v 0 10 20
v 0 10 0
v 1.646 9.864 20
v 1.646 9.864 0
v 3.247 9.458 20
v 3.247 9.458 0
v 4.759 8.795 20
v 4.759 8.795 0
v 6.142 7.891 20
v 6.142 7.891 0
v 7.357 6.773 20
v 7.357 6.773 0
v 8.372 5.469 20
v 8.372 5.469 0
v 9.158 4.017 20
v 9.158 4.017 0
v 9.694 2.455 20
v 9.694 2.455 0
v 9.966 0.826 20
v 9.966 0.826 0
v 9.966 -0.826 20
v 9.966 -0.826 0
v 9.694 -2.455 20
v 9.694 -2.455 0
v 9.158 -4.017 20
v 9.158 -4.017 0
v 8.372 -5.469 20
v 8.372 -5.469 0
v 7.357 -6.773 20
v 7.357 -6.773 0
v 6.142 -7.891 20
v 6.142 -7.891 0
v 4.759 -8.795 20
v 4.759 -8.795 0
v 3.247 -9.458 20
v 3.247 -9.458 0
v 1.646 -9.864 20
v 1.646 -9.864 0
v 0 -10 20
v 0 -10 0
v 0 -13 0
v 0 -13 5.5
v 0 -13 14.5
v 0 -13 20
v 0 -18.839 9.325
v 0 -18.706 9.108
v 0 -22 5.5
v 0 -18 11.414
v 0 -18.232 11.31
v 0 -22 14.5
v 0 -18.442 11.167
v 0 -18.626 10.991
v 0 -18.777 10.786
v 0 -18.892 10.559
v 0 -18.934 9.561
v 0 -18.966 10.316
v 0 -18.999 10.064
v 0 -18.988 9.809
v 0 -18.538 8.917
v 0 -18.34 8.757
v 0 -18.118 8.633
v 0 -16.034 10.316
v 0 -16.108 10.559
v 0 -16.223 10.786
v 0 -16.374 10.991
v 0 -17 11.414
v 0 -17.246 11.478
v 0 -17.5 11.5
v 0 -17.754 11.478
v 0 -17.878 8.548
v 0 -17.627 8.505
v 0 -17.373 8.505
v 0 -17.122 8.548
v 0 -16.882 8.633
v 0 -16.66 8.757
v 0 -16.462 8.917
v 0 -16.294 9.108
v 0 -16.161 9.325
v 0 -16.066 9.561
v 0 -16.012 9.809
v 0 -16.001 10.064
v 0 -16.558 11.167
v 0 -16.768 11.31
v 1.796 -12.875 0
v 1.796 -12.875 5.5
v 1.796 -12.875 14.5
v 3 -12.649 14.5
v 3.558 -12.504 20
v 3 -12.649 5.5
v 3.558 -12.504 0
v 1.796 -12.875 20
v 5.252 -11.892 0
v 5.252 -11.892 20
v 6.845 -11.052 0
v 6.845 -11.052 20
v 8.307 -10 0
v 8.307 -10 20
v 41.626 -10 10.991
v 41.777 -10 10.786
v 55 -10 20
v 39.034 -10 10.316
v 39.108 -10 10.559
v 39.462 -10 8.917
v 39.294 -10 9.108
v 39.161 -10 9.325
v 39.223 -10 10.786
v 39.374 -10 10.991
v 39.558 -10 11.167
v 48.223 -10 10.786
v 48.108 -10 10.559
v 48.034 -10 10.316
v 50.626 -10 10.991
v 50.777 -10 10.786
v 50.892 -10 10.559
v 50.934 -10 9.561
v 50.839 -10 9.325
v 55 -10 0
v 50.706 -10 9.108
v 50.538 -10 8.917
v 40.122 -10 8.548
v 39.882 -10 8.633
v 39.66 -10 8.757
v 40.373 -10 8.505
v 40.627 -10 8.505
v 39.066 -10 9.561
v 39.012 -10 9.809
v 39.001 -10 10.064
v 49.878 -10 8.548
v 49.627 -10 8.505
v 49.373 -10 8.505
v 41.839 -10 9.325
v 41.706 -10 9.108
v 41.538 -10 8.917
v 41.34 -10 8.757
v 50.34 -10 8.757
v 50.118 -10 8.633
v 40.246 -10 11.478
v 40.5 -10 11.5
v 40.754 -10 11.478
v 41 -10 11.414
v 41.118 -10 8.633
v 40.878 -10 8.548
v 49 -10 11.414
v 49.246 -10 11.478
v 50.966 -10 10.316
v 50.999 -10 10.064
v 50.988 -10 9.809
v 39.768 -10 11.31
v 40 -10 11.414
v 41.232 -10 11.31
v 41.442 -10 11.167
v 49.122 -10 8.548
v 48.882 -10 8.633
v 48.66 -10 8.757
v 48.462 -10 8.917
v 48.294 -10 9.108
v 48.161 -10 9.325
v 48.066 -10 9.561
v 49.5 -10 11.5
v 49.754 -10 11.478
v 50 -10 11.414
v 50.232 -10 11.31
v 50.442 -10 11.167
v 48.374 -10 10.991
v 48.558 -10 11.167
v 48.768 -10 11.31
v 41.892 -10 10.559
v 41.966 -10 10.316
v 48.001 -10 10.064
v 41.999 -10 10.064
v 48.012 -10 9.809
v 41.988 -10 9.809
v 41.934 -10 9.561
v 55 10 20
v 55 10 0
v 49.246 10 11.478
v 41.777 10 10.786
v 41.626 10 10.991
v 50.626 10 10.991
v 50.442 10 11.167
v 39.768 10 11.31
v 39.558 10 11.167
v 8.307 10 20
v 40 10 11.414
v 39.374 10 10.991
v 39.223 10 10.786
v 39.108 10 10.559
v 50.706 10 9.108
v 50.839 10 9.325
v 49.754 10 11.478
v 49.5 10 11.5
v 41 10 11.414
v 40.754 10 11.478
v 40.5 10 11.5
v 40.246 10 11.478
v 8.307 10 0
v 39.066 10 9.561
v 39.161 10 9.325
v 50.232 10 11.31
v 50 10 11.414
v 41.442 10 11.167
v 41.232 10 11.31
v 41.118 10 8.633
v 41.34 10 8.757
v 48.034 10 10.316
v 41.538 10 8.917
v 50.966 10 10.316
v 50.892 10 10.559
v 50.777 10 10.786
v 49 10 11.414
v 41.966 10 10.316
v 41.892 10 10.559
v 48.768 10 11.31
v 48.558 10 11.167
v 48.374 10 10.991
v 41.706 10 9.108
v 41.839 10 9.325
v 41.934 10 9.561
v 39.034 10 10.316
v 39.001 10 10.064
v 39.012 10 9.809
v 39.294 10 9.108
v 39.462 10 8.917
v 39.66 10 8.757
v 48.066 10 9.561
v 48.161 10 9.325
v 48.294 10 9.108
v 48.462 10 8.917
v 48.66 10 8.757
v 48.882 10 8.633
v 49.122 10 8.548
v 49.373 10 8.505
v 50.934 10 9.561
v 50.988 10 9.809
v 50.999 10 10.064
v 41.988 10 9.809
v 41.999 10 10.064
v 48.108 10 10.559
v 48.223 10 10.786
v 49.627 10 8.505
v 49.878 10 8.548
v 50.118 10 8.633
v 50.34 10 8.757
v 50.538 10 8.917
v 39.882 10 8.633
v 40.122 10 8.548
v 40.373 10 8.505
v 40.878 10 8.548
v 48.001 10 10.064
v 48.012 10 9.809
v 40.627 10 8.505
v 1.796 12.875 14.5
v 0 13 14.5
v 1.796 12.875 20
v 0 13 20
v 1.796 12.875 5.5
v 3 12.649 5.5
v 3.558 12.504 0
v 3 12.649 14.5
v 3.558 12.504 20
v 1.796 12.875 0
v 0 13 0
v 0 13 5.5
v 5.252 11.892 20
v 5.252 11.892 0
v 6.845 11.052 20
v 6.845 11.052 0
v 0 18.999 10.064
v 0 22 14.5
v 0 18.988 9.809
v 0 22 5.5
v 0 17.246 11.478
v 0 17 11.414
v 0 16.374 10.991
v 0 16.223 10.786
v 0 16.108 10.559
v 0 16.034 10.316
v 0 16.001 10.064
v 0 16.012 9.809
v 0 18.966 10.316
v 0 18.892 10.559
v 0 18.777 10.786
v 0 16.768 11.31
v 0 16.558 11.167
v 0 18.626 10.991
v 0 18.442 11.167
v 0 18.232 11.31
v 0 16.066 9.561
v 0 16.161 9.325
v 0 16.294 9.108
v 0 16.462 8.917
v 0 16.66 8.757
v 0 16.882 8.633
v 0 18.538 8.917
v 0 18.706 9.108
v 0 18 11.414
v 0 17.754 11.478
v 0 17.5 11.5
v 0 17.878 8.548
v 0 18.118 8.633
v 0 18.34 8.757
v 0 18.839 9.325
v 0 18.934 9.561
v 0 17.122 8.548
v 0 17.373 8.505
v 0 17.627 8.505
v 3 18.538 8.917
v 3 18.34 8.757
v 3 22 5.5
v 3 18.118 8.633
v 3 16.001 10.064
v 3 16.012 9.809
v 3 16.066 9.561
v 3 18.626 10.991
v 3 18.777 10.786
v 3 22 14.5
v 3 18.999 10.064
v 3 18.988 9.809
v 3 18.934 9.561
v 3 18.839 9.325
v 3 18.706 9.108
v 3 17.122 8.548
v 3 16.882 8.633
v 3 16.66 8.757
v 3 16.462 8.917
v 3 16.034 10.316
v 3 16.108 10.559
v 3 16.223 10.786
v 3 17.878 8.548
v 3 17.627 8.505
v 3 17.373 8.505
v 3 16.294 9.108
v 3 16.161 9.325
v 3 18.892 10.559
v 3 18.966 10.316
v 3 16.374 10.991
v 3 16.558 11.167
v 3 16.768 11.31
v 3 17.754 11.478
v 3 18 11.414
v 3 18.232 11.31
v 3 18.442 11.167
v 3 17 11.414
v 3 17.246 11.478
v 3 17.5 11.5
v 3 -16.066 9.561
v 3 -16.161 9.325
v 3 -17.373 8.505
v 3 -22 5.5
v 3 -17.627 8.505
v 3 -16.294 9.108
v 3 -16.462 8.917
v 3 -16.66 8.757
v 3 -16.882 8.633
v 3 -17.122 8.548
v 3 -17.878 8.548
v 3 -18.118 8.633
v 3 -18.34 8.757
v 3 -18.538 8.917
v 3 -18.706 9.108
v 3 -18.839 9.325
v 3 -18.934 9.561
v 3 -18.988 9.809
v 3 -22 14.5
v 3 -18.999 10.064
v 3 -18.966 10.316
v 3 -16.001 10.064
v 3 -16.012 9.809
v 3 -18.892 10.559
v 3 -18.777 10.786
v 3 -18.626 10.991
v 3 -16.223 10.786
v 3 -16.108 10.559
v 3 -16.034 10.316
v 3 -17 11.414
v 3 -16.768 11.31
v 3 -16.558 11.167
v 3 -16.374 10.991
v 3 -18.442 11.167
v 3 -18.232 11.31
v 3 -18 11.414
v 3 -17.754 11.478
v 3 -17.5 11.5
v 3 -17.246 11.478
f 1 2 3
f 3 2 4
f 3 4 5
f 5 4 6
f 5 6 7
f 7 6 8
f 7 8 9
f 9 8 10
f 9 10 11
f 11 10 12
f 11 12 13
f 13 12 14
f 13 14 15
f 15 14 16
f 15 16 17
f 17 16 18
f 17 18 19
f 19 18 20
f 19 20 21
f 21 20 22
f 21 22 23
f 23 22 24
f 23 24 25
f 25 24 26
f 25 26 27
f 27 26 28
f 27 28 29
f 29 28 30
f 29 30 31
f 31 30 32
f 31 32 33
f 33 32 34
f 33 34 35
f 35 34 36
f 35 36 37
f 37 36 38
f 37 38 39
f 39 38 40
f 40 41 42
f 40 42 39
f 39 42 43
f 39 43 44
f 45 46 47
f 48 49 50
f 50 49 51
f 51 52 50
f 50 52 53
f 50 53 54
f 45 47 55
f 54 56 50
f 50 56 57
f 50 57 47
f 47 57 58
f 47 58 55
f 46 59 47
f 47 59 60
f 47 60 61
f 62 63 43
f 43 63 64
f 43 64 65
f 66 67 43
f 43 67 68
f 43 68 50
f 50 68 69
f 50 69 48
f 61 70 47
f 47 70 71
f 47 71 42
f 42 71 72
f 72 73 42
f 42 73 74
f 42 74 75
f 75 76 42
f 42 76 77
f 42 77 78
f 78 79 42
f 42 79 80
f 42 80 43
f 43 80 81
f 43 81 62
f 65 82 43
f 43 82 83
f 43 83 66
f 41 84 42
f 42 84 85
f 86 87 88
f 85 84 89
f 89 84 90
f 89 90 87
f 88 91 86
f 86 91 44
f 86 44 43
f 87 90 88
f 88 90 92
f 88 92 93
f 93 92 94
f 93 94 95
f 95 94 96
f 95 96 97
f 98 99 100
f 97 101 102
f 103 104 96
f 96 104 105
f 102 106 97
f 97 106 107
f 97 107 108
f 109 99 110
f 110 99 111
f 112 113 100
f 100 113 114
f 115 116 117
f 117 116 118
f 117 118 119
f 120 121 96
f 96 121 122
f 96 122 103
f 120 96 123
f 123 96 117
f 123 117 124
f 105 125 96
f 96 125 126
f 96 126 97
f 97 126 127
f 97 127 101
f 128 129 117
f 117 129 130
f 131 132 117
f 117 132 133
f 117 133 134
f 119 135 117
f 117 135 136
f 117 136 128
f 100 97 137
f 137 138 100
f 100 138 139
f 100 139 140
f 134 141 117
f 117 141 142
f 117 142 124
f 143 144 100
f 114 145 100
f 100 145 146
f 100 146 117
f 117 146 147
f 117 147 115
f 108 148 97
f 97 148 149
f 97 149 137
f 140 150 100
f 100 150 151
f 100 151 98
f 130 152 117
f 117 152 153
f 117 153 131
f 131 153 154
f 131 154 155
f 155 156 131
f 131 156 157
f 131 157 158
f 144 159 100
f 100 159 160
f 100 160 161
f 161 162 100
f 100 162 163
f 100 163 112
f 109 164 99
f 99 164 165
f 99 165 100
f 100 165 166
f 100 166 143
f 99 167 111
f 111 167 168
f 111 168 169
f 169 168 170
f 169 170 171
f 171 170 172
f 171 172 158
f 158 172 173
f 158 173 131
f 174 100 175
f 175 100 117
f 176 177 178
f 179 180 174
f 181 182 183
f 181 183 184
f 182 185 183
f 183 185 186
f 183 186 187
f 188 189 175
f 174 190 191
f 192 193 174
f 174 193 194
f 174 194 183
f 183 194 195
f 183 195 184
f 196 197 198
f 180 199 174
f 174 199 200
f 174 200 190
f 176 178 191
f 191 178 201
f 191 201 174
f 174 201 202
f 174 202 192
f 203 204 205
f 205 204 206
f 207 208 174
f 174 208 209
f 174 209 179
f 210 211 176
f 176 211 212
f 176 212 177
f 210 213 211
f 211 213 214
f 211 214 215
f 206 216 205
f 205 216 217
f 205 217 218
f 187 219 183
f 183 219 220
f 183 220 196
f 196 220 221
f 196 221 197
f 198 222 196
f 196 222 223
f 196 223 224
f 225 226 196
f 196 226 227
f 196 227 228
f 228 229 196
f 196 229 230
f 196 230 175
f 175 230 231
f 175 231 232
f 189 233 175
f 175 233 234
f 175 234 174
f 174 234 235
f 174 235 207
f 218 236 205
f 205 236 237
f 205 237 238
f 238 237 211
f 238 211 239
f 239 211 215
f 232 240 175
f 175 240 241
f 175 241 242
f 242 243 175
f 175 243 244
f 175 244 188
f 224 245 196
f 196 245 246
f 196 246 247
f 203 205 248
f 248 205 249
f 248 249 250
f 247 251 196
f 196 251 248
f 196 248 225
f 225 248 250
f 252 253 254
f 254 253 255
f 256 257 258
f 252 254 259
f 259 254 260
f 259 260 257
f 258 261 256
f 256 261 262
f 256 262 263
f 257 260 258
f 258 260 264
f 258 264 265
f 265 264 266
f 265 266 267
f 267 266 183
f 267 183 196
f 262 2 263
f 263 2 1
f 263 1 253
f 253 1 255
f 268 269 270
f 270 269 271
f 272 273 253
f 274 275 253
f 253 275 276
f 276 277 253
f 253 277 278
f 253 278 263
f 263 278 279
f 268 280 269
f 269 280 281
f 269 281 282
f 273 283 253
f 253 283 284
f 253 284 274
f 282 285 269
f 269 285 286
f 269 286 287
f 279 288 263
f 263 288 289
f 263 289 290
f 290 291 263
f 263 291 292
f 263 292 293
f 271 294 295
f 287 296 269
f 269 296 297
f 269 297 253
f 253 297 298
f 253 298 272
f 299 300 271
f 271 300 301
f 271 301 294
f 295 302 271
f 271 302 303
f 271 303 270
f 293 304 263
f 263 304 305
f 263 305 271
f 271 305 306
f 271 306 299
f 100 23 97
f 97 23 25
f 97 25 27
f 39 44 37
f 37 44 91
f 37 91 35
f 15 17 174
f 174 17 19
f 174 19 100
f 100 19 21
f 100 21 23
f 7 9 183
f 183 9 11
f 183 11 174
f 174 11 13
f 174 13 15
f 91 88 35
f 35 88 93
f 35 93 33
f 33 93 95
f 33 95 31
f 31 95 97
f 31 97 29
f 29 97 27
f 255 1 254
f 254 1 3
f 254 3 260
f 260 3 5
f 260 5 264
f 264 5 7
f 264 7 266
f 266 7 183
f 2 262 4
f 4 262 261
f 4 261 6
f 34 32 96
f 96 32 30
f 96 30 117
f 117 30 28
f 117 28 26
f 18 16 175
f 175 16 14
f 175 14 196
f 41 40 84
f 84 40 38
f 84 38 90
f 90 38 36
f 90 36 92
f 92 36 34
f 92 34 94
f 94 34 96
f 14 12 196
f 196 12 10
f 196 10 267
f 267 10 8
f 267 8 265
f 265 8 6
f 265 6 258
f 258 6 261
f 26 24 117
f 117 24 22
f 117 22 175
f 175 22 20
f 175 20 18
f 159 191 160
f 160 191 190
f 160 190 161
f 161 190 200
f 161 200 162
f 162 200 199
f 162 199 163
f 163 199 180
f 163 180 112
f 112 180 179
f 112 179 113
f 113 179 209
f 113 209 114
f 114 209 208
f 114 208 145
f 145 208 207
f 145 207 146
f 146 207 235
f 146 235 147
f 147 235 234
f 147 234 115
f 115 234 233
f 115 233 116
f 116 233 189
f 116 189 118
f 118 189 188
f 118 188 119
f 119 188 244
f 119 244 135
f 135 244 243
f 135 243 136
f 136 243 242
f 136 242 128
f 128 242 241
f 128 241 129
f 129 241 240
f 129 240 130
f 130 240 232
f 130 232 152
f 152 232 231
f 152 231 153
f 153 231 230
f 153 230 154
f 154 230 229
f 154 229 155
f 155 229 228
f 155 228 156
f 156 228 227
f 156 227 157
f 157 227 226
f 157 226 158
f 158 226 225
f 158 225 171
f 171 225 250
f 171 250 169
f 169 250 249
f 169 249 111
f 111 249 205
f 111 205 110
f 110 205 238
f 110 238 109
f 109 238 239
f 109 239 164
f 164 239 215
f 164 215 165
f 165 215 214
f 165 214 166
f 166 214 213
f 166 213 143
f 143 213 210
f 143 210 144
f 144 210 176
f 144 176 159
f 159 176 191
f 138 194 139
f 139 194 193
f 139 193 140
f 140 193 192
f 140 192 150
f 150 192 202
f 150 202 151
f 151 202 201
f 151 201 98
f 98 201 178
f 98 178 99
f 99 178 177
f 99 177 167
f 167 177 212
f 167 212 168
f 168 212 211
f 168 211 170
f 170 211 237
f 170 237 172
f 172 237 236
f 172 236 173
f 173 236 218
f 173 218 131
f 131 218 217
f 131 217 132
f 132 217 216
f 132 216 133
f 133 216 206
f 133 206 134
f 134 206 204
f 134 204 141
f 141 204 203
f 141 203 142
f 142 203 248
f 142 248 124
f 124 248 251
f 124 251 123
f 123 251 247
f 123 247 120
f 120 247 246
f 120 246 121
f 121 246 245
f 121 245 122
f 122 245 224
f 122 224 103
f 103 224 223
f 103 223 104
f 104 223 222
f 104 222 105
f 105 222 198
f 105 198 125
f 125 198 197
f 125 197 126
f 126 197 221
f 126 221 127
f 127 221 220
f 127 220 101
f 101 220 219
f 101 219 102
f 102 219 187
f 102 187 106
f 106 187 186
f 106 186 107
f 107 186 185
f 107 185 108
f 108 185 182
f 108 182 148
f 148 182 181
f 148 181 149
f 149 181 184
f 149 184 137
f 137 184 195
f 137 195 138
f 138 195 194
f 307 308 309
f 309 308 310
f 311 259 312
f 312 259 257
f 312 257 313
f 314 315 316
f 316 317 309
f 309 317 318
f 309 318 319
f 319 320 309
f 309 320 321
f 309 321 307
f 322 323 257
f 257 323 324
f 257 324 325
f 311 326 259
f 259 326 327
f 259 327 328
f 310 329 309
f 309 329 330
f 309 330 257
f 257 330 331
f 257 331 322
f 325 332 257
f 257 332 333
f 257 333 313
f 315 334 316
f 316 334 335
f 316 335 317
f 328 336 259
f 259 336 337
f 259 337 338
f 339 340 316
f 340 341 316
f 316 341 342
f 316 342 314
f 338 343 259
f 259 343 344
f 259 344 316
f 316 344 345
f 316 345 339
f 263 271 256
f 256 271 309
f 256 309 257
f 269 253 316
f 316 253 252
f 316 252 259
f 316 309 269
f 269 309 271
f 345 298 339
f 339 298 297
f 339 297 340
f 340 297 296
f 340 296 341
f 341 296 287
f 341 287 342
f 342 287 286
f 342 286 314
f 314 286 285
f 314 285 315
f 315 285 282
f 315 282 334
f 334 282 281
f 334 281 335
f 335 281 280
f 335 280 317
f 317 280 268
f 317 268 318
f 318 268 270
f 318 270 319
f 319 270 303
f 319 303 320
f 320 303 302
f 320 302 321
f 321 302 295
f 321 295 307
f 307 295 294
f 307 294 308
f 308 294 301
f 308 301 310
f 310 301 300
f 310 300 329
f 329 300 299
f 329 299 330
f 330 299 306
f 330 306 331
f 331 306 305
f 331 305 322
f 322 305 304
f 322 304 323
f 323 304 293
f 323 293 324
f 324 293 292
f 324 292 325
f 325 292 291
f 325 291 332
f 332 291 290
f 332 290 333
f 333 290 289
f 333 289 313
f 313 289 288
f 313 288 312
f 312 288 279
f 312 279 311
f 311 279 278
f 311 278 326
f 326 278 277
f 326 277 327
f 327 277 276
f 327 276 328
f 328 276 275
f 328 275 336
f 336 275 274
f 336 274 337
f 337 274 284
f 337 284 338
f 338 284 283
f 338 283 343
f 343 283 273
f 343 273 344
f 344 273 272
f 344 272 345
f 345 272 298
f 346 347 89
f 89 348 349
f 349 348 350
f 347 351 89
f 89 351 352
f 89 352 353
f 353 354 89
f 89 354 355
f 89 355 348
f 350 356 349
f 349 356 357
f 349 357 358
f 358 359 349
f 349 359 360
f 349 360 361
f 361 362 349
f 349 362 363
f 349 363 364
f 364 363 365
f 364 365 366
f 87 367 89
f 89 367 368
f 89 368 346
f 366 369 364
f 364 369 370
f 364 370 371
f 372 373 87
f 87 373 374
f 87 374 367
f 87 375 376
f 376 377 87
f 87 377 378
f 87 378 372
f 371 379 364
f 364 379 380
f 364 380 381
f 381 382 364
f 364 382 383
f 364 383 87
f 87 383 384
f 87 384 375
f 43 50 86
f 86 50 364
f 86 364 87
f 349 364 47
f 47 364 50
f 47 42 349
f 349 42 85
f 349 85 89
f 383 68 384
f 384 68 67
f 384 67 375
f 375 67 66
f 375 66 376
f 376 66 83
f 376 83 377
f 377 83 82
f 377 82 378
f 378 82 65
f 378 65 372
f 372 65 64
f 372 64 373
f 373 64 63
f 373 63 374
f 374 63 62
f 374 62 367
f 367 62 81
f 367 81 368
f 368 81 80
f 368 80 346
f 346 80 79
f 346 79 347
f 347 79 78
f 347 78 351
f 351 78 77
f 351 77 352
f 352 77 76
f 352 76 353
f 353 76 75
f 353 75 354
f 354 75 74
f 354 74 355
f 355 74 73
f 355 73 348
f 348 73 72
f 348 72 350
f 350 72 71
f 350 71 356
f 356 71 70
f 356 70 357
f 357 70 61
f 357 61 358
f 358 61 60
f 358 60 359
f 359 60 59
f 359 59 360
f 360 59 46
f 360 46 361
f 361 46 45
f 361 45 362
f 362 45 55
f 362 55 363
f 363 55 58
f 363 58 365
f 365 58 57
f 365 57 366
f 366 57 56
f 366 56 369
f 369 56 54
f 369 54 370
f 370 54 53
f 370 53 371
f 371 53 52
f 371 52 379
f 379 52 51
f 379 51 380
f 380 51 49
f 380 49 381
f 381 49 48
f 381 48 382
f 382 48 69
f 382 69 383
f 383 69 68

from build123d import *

# Parameters (mm, degrees)
EXTRUDE_1_DEPTH     = 20
SKETCH_2_R          = 1.5
CUT_EXTRUDE_1_DEPTH = 63.880839689
SKETCH_6_R          = 1.5
EXTRUDE_2_DEPTH     = 3


with BuildPart() as part:
    # Эскиз1 → Бобышка-Вытянуть1 (new body)
    with BuildSketch(Plane.XY):
        with BuildLine():
            Line((0, 10), (0, 13))
            ThreePointArc((0, 13), (4.415880433, 12.227019261), (8.306623863, 10))
            Line((8.306623863, 10), (55, 10))
            Line((55, 10), (55, 0))
            Line((55, 0), (55, -10))
            Line((55, -10), (8.306623863, -10))
            ThreePointArc((8.306623863, -10), (4.415880433, -12.227019261), (0, -13))
            Line((0, -13), (0, -10))
            ThreePointArc((0, -10), (10, 0), (0, 10))
        make_face()
    extrude(amount=EXTRUDE_1_DEPTH)

    # Эскиз2 → Вырез-Вытянуть1 (cut, through all)
    with BuildSketch(Plane(origin=(0, 10, 0), x_dir=(1, 0, 0), z_dir=(0, 1, 0))):
        with Locations(Location((40.5, -10, 0), (0, 0, 270))):
            Circle(SKETCH_2_R)
        with Locations(Location((49.5, -10, 0), (0, 0, 270))):
            Circle(SKETCH_2_R)
    extrude(amount=-CUT_EXTRUDE_1_DEPTH, mode=Mode.SUBTRACT)

    # Эскиз6 → Бобышка-Вытянуть2 (add)
    # profile 1 of 2: a face of its own
    with BuildSketch(Plane.ZY):
        Polygon((10, 10), (5.5, 10), (5.5, 22), (14.5, 22), (14.5, 10), align=None)
        with Locations((10, 17.5)):
            Circle(SKETCH_6_R, mode=Mode.SUBTRACT)
    # profile 2 of 2: a face of its own
    with BuildSketch(Plane.ZY):
        Polygon((10, -10), (5.5, -10), (5.5, -22), (14.5, -22), (14.5, -10), align=None)
        with Locations((10, -17.5)):
            Circle(SKETCH_6_R, mode=Mode.SUBTRACT)
    extrude(amount=-EXTRUDE_2_DEPTH)


solid = part.part
